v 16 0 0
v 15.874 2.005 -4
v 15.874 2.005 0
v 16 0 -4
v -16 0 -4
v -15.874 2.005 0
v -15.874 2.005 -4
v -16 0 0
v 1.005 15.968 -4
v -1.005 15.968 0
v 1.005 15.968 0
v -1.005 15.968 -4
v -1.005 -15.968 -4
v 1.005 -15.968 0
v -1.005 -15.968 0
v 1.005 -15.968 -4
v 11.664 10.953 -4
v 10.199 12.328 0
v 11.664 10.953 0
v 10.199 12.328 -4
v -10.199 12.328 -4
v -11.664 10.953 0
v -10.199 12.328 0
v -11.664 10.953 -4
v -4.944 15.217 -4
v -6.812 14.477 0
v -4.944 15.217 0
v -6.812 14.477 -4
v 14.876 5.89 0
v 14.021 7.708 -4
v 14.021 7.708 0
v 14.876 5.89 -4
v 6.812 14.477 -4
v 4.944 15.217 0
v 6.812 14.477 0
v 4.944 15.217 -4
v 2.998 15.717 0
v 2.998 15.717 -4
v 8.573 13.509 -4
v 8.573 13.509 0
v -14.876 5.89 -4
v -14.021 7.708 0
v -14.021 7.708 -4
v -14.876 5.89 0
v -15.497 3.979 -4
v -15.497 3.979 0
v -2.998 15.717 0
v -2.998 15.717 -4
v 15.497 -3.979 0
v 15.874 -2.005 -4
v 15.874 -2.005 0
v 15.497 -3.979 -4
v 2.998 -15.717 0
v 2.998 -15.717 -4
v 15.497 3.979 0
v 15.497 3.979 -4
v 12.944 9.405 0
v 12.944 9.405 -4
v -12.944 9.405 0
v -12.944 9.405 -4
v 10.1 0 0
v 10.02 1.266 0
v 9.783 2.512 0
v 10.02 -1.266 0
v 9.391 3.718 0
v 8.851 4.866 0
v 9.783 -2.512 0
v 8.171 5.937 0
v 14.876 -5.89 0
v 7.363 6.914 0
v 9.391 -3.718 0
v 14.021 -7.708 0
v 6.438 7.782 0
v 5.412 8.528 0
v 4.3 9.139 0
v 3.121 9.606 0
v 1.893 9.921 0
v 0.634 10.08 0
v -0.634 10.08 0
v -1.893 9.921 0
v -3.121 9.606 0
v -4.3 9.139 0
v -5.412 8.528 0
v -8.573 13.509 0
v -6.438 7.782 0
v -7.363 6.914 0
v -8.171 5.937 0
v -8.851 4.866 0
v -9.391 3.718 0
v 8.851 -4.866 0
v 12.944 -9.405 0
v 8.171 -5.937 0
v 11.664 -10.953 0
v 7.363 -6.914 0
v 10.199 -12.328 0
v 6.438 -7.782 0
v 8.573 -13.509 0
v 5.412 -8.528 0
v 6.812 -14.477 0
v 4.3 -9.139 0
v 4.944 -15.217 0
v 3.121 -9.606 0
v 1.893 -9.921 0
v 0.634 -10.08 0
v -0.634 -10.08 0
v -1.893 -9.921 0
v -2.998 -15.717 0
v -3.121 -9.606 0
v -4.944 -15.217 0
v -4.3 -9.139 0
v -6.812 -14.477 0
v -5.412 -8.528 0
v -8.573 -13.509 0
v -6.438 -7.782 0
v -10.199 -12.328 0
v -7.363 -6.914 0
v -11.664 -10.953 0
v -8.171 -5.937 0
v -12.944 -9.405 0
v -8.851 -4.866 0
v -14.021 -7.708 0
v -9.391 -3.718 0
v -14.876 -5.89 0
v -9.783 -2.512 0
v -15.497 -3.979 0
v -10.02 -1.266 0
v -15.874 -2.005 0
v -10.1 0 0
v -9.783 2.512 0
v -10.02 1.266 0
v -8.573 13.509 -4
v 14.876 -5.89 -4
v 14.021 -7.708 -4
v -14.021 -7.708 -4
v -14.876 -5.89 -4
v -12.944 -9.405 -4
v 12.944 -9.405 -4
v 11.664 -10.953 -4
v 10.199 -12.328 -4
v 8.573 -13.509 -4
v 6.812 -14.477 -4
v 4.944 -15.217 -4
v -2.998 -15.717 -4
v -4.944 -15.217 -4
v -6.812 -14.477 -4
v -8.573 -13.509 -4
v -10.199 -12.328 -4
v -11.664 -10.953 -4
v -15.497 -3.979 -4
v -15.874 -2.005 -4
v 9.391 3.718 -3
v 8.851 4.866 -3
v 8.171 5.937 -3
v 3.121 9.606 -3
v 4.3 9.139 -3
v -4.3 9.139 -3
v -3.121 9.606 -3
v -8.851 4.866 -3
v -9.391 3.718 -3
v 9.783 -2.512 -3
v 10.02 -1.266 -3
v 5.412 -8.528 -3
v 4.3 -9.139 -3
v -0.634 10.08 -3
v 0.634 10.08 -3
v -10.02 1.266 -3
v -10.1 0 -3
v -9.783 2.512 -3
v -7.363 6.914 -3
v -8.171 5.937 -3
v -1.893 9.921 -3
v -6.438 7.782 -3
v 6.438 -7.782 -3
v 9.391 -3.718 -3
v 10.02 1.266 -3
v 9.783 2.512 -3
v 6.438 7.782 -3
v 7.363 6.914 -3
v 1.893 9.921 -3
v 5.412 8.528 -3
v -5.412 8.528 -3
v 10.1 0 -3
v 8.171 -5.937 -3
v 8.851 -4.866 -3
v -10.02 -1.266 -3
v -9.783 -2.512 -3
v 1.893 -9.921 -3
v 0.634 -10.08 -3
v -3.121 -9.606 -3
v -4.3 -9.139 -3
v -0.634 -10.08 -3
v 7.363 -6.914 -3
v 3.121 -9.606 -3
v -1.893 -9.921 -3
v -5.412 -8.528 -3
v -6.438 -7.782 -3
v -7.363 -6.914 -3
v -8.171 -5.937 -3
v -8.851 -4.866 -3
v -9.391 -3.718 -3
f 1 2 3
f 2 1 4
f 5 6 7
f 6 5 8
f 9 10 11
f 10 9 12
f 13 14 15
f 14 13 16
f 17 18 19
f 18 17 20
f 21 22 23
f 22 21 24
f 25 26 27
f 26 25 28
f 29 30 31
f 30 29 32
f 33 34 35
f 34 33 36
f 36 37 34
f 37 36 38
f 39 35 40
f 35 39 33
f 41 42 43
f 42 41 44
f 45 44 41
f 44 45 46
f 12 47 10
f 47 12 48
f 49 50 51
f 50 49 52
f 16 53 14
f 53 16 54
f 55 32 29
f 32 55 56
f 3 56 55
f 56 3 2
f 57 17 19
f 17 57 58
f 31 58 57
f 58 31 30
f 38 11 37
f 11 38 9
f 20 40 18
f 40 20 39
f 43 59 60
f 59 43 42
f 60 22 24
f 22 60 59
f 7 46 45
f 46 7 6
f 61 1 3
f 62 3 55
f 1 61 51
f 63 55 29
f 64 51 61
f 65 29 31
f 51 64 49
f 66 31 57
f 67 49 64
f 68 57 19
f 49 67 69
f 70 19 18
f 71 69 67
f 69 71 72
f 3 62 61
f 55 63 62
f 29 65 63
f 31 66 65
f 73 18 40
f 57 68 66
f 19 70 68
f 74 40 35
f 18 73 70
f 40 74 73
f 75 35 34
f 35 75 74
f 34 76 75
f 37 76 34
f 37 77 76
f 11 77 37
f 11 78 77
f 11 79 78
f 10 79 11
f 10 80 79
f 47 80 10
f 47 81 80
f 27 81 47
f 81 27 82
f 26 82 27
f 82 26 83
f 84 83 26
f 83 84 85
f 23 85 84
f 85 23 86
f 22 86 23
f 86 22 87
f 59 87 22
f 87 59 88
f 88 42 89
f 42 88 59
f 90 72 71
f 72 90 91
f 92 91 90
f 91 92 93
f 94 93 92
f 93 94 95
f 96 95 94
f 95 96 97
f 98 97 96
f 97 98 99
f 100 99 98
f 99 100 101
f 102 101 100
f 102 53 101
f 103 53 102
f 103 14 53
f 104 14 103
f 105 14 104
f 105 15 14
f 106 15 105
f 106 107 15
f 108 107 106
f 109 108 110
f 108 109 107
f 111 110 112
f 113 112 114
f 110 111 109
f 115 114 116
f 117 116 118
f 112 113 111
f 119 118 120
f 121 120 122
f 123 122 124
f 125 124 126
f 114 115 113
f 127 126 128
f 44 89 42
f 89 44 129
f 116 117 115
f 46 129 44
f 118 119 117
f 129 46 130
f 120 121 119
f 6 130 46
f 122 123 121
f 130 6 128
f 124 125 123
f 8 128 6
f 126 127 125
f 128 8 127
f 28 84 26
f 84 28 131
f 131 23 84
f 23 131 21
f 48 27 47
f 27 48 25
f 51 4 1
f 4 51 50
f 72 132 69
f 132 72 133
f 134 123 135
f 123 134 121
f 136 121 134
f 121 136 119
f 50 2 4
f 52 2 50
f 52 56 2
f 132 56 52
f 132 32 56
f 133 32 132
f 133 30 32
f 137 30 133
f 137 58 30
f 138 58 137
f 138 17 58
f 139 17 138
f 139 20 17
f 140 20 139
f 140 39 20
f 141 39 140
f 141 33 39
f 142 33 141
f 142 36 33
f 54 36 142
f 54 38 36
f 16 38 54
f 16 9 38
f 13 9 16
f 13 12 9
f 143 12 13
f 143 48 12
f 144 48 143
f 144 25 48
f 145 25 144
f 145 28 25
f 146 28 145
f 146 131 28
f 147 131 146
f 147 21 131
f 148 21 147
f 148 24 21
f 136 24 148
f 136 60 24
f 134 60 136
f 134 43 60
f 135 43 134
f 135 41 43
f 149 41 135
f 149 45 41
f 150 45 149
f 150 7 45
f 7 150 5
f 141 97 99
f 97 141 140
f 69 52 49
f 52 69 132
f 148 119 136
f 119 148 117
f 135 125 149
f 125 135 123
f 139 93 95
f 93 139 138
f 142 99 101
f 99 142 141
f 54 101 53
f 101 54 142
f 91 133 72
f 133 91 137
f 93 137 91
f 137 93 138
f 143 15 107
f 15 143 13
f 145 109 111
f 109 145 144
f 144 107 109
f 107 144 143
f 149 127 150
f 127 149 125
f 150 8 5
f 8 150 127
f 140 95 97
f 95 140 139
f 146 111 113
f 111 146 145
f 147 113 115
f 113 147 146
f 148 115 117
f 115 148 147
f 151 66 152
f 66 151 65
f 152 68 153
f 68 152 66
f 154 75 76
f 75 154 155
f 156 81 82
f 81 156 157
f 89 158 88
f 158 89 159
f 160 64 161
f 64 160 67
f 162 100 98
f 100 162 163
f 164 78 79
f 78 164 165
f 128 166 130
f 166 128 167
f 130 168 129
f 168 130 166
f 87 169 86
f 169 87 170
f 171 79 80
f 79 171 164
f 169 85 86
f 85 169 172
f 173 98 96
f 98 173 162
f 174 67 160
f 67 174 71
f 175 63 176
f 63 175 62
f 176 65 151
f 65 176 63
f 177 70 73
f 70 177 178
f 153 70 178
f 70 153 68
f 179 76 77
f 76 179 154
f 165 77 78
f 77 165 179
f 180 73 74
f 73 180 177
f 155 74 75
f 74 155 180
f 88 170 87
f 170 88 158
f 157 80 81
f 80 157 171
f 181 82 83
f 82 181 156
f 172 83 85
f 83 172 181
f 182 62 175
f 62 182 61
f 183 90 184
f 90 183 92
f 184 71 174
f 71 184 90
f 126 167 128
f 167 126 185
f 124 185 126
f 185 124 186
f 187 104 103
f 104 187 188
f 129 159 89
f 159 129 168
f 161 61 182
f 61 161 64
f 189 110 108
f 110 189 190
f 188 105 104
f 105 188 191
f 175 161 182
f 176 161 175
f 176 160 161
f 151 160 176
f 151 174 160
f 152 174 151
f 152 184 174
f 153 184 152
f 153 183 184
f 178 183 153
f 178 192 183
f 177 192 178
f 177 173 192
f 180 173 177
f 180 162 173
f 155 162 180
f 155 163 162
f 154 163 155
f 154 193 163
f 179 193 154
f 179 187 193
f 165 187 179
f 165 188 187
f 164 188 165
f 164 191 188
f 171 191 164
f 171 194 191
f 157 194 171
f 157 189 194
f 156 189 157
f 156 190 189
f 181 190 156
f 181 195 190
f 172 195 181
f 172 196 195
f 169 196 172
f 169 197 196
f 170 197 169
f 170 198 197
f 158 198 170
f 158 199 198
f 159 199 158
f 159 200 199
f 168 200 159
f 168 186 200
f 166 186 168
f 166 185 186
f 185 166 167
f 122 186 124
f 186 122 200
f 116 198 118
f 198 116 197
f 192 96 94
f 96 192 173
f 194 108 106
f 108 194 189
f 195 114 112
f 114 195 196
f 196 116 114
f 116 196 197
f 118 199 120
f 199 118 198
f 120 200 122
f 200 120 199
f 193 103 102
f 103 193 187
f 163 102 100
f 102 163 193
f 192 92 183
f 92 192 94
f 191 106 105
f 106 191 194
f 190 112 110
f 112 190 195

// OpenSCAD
$fn = 50;


difference() {
	union() {
		translate(v = [0, 0, -4.0000000000]) {
			cylinder(h = 4, r = 16.0000000000);
		}
	}
	union() {
		#translate(v = [0, 0, -3.0000000000]) {
			cylinder(h = 3, r = 10.1000000000);
		}
	}
}
